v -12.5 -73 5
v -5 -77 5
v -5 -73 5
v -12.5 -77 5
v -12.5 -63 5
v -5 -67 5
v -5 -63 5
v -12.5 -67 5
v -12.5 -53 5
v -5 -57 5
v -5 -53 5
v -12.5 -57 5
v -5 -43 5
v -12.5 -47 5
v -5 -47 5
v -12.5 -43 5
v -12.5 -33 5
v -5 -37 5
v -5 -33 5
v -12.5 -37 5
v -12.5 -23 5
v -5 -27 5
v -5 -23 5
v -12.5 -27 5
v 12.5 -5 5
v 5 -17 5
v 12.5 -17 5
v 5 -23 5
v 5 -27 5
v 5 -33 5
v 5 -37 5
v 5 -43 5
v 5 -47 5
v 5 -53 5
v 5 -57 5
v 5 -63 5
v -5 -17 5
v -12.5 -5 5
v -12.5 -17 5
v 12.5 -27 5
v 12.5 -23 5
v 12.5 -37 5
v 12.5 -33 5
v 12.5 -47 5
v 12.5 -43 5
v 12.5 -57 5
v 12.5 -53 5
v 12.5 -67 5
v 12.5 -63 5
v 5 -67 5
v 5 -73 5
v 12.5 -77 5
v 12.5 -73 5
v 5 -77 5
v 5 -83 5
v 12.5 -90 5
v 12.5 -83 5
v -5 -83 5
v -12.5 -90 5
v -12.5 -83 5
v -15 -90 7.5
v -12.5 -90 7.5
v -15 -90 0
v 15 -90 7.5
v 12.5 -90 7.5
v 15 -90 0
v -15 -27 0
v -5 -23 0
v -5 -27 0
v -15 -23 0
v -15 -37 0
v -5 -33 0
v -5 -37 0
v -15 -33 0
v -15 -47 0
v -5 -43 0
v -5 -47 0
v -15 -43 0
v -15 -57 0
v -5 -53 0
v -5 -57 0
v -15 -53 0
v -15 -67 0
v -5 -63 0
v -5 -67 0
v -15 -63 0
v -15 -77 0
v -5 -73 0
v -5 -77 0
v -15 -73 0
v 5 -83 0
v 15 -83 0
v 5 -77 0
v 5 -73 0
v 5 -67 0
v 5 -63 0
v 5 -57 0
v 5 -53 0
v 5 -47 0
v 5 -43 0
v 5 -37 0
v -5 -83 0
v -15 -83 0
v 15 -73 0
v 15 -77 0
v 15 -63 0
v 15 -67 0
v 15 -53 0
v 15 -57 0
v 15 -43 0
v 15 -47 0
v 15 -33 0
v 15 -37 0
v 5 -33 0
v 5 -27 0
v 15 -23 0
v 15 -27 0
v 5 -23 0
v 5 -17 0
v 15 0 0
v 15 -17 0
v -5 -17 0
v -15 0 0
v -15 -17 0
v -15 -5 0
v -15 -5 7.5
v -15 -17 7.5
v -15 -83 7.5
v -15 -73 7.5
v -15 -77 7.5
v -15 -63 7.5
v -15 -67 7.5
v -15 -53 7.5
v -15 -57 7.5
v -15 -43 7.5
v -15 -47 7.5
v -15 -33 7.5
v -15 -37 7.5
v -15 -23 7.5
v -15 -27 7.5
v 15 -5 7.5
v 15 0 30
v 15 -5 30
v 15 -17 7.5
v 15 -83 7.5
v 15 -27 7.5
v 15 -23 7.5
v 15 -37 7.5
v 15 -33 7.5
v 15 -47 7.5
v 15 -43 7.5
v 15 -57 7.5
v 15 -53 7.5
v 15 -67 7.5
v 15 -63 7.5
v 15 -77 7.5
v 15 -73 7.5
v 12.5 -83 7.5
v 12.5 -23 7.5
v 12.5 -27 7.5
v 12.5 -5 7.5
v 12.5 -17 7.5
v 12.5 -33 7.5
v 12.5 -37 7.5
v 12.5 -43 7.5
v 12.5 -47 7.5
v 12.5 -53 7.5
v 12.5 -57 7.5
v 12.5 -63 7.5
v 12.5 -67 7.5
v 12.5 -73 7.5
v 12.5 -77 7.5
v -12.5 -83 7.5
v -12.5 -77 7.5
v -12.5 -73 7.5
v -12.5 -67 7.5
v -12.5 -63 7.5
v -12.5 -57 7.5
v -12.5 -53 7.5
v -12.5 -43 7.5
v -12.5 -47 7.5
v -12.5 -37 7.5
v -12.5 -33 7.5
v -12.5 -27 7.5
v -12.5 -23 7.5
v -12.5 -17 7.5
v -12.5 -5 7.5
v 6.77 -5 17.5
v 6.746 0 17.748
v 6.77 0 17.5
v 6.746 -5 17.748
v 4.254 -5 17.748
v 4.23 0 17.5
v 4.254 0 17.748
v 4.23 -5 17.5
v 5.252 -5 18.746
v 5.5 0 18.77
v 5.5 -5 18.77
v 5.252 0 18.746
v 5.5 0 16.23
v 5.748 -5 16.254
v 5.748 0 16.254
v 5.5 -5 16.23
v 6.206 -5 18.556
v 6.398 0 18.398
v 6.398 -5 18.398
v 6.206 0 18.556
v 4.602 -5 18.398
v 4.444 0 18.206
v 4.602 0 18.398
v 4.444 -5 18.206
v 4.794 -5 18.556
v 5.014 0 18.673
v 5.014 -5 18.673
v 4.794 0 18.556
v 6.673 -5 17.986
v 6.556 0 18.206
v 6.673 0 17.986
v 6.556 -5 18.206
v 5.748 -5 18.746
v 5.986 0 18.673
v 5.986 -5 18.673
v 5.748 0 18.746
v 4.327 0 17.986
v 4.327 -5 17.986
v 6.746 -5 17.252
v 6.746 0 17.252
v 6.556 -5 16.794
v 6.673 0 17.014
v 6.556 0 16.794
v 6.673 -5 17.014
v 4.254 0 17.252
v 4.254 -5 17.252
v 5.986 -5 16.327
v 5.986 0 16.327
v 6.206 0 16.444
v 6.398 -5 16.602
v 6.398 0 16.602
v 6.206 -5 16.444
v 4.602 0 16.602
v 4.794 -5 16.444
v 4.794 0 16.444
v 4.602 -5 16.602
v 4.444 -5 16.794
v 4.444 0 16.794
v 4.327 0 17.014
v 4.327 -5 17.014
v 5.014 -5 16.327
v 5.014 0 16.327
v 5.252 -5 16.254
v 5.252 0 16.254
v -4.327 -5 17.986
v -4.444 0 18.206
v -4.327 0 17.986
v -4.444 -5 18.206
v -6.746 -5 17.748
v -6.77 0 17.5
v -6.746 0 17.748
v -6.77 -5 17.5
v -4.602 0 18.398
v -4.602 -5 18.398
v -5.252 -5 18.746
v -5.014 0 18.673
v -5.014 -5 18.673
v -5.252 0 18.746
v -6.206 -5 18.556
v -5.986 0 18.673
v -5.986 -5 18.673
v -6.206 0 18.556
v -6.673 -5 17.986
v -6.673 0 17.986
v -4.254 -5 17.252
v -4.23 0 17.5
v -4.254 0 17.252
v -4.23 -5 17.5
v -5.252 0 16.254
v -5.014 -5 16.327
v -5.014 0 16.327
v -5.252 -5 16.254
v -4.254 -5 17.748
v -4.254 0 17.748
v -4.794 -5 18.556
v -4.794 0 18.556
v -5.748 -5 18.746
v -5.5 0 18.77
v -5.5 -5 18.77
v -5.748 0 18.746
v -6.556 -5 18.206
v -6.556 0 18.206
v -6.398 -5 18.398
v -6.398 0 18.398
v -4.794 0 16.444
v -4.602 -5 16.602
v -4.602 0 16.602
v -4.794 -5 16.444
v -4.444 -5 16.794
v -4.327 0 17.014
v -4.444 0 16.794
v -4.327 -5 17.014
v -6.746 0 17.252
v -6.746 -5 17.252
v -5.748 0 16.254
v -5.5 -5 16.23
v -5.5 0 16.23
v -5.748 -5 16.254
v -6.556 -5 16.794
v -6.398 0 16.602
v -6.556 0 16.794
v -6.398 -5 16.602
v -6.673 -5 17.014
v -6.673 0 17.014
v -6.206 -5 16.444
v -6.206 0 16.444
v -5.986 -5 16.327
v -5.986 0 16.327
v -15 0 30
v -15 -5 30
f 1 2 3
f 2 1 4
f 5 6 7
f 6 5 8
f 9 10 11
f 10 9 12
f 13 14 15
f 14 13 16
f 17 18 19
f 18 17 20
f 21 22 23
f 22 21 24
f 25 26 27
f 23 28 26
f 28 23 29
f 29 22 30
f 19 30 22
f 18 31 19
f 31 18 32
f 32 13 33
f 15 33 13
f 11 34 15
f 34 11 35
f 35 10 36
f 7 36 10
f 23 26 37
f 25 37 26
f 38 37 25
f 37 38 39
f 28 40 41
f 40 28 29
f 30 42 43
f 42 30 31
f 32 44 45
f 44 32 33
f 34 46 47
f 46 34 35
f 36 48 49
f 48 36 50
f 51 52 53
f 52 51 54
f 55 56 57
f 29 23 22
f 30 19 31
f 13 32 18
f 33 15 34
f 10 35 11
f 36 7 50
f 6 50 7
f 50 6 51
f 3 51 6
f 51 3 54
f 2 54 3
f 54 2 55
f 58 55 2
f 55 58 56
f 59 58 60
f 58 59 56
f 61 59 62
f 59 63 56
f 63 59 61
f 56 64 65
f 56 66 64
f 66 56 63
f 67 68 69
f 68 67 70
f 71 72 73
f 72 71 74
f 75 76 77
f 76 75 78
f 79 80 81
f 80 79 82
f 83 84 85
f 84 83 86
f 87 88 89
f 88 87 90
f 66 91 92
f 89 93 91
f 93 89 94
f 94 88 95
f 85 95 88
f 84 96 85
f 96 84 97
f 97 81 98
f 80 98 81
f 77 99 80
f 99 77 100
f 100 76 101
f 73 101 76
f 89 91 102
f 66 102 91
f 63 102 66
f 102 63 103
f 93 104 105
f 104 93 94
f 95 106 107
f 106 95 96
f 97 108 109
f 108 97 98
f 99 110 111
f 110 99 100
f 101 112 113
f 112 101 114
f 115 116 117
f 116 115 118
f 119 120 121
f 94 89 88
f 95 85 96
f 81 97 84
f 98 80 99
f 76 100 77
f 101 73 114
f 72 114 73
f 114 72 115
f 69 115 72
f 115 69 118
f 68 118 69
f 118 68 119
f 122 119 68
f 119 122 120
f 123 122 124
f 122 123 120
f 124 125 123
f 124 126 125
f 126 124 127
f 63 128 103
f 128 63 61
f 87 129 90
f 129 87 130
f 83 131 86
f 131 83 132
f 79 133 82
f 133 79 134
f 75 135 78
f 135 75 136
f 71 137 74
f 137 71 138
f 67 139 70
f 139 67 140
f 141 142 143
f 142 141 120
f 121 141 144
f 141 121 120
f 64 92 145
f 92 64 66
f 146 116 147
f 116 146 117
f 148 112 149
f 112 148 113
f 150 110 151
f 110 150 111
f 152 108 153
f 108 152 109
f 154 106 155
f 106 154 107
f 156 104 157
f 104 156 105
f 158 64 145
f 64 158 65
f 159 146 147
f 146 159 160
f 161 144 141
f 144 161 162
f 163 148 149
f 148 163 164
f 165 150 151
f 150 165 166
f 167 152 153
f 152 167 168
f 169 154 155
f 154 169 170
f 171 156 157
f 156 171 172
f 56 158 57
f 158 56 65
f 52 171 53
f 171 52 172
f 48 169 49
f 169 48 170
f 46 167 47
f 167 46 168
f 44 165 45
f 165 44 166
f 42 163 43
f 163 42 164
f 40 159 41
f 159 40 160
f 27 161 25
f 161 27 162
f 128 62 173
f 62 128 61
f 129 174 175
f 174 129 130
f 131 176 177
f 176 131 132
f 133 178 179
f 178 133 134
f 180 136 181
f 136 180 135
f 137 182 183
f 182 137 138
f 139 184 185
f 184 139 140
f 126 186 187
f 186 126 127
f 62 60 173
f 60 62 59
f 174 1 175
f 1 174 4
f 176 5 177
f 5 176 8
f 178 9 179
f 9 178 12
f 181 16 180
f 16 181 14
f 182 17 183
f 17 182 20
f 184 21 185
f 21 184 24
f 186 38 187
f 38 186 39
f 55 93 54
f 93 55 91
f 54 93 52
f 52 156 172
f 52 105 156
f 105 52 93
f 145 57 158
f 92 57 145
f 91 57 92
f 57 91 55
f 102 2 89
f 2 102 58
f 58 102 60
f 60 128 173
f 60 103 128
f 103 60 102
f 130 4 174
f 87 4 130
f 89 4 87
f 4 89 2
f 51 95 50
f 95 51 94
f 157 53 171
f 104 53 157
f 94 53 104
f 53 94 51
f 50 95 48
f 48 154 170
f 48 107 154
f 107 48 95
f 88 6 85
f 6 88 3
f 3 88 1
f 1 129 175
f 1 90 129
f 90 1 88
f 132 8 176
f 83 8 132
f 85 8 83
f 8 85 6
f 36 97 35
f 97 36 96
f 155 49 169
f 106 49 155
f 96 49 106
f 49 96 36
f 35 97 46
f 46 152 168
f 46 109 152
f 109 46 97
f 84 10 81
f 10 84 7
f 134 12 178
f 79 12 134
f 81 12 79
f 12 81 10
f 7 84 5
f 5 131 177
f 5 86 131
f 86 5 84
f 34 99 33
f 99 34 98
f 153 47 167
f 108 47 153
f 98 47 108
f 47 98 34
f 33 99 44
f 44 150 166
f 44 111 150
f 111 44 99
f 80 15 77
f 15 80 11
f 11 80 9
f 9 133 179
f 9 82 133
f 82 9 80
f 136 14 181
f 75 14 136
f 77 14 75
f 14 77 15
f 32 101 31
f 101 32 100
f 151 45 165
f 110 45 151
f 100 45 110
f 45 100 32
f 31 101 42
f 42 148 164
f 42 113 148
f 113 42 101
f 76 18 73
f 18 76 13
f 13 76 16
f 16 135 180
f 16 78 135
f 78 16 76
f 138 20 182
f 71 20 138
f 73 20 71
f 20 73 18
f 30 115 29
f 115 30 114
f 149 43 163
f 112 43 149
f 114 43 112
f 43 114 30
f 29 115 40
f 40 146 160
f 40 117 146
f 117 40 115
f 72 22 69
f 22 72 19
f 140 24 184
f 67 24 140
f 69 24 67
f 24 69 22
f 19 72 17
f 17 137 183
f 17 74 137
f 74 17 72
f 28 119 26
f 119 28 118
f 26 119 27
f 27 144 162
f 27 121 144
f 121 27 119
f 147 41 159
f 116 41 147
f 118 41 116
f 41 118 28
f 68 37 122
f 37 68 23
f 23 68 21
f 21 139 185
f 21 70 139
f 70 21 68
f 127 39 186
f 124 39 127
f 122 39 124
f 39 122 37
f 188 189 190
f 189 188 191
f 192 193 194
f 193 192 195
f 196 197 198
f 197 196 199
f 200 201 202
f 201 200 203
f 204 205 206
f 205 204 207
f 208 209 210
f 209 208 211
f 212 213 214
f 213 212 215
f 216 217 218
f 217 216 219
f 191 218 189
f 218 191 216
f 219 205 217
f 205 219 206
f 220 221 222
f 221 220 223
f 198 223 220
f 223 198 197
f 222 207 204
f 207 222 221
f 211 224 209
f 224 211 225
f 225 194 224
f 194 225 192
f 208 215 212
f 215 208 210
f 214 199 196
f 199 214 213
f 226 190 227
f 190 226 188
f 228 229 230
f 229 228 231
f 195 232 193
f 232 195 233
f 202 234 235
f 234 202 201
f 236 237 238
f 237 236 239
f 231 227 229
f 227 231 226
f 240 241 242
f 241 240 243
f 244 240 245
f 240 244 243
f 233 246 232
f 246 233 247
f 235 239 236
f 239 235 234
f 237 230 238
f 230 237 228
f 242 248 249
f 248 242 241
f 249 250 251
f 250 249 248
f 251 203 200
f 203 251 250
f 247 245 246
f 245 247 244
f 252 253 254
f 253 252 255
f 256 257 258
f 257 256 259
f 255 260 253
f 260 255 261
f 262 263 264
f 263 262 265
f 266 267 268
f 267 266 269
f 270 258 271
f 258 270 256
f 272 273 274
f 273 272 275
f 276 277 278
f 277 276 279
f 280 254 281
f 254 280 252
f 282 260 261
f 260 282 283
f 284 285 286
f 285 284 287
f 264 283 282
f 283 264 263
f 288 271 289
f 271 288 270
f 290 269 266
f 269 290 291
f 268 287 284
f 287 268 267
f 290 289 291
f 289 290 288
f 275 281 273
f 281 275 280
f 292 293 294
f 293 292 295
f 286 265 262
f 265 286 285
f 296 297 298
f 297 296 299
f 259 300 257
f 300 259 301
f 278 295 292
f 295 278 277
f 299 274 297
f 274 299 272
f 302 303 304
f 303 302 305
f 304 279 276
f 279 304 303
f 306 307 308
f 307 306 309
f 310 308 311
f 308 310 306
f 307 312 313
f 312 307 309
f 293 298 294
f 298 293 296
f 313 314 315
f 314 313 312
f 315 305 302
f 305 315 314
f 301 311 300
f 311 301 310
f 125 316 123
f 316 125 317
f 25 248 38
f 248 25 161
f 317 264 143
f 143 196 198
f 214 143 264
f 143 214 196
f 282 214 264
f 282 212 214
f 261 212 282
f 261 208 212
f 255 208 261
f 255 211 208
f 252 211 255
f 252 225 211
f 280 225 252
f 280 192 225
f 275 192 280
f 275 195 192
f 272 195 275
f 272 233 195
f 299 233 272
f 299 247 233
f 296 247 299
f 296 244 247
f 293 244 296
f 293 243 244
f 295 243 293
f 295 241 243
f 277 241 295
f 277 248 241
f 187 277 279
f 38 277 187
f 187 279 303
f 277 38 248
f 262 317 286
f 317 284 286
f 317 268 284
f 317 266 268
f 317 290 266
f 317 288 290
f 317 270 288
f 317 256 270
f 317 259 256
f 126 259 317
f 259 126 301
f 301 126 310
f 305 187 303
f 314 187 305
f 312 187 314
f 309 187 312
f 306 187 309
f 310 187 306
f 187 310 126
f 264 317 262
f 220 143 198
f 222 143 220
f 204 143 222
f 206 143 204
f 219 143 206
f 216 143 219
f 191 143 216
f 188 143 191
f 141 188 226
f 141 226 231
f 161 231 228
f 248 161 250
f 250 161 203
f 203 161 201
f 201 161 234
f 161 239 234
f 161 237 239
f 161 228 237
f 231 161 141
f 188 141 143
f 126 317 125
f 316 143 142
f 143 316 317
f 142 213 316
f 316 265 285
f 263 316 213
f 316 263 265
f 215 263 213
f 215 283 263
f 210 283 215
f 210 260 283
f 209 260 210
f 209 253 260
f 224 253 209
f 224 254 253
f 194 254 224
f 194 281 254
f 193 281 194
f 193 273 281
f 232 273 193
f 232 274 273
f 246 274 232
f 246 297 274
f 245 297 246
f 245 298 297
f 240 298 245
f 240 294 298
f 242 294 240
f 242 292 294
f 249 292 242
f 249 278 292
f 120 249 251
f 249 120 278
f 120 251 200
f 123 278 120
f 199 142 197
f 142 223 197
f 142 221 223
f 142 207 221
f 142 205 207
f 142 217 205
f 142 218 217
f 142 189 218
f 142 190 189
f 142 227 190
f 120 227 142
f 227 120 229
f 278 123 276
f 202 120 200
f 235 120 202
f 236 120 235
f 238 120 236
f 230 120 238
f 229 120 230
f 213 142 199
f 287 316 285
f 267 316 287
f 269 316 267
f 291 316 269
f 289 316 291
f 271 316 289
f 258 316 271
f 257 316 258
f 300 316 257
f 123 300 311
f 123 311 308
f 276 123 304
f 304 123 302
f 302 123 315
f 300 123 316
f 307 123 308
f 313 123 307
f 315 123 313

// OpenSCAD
// pigtail perpendicular hanger
$fn=32;

w = 30;
l = 90;
d = 5;

wire_r = 5;
notch_spacing = 10;
probe = false;
probe_r = 3.9;

back_h = 30;
spine_w = 10;

module hanger() {
    module back() {
        module mounting_hole() {
            cylinder(d=2.54, h=d+d, center=true);
        }

        module holes() {
            hole_spacing = 11;
            mount_w = w;

            translate([0,(back_h/2)+(d/2),0])
            union() {
                translate([(mount_w/2)+(hole_spacing/2),0,1])
                mounting_hole();

                translate([(mount_w/2)-(hole_spacing/2),0,1])
                mounting_hole();
            }
        }

        difference() {
            cube([w,back_h,d]);
            
            //rotate([0,0,90])
            #holes();
        }
    }

    module notch(wire_r) {
        cube([(w/2)-(spine_w/2), wire_r+1, d*3], center=true);
    }

    module platform() {
        rotate([0,0,-90])
        translate([0,-(w/2),0])
        cube([l, w, d]);
    }

    module barrier() {
        cube([l,d/2,d/2]);
    }

    difference() {
        union() {
            platform();

            rotate([0,0,-90])
            translate([0,(w/2)-d/2,d])
            barrier();

            rotate([0,0,-90])
            translate([0,-w/2,d])
            barrier();
        }

        notches();
    }

    rotate([90,0,0])
    translate([-(w/2),0,0])
    back();

    module notches() {
        // divide up platform into maximum # of notches,
        max_notches = (l-d)/(wire_r+notch_spacing)+1;
        notch_w = (w/2)-(spine_w/2);

        for(i=[0:max_notches]) {
            #union() {
                // right
                translate([(w-(notch_w))/2,
                    (-l+notch_spacing)+(notch_spacing*i),
                    d/2])
                notch(wire_r);

                // left
                translate([-(w-(notch_w))/2,
                    (-l+notch_spacing)+(notch_spacing*i),
                    d/2])
                notch(wire_r);

                if (probe) {
                    //right
                    translate([(w/2)-probe_r,
                        (-l+notch_spacing)+(notch_spacing*i)+probe_r/2,
                        0])
                    cylinder(r=probe_r, h=d*2);

                    //left
                    translate([-w+w/2+probe_r,
                        (-l+notch_spacing)+(notch_spacing*i)+probe_r/2,
                        0])
                    cylinder(r=probe_r, h=d*2);
                }
            }
        }
    }
}

hanger();
